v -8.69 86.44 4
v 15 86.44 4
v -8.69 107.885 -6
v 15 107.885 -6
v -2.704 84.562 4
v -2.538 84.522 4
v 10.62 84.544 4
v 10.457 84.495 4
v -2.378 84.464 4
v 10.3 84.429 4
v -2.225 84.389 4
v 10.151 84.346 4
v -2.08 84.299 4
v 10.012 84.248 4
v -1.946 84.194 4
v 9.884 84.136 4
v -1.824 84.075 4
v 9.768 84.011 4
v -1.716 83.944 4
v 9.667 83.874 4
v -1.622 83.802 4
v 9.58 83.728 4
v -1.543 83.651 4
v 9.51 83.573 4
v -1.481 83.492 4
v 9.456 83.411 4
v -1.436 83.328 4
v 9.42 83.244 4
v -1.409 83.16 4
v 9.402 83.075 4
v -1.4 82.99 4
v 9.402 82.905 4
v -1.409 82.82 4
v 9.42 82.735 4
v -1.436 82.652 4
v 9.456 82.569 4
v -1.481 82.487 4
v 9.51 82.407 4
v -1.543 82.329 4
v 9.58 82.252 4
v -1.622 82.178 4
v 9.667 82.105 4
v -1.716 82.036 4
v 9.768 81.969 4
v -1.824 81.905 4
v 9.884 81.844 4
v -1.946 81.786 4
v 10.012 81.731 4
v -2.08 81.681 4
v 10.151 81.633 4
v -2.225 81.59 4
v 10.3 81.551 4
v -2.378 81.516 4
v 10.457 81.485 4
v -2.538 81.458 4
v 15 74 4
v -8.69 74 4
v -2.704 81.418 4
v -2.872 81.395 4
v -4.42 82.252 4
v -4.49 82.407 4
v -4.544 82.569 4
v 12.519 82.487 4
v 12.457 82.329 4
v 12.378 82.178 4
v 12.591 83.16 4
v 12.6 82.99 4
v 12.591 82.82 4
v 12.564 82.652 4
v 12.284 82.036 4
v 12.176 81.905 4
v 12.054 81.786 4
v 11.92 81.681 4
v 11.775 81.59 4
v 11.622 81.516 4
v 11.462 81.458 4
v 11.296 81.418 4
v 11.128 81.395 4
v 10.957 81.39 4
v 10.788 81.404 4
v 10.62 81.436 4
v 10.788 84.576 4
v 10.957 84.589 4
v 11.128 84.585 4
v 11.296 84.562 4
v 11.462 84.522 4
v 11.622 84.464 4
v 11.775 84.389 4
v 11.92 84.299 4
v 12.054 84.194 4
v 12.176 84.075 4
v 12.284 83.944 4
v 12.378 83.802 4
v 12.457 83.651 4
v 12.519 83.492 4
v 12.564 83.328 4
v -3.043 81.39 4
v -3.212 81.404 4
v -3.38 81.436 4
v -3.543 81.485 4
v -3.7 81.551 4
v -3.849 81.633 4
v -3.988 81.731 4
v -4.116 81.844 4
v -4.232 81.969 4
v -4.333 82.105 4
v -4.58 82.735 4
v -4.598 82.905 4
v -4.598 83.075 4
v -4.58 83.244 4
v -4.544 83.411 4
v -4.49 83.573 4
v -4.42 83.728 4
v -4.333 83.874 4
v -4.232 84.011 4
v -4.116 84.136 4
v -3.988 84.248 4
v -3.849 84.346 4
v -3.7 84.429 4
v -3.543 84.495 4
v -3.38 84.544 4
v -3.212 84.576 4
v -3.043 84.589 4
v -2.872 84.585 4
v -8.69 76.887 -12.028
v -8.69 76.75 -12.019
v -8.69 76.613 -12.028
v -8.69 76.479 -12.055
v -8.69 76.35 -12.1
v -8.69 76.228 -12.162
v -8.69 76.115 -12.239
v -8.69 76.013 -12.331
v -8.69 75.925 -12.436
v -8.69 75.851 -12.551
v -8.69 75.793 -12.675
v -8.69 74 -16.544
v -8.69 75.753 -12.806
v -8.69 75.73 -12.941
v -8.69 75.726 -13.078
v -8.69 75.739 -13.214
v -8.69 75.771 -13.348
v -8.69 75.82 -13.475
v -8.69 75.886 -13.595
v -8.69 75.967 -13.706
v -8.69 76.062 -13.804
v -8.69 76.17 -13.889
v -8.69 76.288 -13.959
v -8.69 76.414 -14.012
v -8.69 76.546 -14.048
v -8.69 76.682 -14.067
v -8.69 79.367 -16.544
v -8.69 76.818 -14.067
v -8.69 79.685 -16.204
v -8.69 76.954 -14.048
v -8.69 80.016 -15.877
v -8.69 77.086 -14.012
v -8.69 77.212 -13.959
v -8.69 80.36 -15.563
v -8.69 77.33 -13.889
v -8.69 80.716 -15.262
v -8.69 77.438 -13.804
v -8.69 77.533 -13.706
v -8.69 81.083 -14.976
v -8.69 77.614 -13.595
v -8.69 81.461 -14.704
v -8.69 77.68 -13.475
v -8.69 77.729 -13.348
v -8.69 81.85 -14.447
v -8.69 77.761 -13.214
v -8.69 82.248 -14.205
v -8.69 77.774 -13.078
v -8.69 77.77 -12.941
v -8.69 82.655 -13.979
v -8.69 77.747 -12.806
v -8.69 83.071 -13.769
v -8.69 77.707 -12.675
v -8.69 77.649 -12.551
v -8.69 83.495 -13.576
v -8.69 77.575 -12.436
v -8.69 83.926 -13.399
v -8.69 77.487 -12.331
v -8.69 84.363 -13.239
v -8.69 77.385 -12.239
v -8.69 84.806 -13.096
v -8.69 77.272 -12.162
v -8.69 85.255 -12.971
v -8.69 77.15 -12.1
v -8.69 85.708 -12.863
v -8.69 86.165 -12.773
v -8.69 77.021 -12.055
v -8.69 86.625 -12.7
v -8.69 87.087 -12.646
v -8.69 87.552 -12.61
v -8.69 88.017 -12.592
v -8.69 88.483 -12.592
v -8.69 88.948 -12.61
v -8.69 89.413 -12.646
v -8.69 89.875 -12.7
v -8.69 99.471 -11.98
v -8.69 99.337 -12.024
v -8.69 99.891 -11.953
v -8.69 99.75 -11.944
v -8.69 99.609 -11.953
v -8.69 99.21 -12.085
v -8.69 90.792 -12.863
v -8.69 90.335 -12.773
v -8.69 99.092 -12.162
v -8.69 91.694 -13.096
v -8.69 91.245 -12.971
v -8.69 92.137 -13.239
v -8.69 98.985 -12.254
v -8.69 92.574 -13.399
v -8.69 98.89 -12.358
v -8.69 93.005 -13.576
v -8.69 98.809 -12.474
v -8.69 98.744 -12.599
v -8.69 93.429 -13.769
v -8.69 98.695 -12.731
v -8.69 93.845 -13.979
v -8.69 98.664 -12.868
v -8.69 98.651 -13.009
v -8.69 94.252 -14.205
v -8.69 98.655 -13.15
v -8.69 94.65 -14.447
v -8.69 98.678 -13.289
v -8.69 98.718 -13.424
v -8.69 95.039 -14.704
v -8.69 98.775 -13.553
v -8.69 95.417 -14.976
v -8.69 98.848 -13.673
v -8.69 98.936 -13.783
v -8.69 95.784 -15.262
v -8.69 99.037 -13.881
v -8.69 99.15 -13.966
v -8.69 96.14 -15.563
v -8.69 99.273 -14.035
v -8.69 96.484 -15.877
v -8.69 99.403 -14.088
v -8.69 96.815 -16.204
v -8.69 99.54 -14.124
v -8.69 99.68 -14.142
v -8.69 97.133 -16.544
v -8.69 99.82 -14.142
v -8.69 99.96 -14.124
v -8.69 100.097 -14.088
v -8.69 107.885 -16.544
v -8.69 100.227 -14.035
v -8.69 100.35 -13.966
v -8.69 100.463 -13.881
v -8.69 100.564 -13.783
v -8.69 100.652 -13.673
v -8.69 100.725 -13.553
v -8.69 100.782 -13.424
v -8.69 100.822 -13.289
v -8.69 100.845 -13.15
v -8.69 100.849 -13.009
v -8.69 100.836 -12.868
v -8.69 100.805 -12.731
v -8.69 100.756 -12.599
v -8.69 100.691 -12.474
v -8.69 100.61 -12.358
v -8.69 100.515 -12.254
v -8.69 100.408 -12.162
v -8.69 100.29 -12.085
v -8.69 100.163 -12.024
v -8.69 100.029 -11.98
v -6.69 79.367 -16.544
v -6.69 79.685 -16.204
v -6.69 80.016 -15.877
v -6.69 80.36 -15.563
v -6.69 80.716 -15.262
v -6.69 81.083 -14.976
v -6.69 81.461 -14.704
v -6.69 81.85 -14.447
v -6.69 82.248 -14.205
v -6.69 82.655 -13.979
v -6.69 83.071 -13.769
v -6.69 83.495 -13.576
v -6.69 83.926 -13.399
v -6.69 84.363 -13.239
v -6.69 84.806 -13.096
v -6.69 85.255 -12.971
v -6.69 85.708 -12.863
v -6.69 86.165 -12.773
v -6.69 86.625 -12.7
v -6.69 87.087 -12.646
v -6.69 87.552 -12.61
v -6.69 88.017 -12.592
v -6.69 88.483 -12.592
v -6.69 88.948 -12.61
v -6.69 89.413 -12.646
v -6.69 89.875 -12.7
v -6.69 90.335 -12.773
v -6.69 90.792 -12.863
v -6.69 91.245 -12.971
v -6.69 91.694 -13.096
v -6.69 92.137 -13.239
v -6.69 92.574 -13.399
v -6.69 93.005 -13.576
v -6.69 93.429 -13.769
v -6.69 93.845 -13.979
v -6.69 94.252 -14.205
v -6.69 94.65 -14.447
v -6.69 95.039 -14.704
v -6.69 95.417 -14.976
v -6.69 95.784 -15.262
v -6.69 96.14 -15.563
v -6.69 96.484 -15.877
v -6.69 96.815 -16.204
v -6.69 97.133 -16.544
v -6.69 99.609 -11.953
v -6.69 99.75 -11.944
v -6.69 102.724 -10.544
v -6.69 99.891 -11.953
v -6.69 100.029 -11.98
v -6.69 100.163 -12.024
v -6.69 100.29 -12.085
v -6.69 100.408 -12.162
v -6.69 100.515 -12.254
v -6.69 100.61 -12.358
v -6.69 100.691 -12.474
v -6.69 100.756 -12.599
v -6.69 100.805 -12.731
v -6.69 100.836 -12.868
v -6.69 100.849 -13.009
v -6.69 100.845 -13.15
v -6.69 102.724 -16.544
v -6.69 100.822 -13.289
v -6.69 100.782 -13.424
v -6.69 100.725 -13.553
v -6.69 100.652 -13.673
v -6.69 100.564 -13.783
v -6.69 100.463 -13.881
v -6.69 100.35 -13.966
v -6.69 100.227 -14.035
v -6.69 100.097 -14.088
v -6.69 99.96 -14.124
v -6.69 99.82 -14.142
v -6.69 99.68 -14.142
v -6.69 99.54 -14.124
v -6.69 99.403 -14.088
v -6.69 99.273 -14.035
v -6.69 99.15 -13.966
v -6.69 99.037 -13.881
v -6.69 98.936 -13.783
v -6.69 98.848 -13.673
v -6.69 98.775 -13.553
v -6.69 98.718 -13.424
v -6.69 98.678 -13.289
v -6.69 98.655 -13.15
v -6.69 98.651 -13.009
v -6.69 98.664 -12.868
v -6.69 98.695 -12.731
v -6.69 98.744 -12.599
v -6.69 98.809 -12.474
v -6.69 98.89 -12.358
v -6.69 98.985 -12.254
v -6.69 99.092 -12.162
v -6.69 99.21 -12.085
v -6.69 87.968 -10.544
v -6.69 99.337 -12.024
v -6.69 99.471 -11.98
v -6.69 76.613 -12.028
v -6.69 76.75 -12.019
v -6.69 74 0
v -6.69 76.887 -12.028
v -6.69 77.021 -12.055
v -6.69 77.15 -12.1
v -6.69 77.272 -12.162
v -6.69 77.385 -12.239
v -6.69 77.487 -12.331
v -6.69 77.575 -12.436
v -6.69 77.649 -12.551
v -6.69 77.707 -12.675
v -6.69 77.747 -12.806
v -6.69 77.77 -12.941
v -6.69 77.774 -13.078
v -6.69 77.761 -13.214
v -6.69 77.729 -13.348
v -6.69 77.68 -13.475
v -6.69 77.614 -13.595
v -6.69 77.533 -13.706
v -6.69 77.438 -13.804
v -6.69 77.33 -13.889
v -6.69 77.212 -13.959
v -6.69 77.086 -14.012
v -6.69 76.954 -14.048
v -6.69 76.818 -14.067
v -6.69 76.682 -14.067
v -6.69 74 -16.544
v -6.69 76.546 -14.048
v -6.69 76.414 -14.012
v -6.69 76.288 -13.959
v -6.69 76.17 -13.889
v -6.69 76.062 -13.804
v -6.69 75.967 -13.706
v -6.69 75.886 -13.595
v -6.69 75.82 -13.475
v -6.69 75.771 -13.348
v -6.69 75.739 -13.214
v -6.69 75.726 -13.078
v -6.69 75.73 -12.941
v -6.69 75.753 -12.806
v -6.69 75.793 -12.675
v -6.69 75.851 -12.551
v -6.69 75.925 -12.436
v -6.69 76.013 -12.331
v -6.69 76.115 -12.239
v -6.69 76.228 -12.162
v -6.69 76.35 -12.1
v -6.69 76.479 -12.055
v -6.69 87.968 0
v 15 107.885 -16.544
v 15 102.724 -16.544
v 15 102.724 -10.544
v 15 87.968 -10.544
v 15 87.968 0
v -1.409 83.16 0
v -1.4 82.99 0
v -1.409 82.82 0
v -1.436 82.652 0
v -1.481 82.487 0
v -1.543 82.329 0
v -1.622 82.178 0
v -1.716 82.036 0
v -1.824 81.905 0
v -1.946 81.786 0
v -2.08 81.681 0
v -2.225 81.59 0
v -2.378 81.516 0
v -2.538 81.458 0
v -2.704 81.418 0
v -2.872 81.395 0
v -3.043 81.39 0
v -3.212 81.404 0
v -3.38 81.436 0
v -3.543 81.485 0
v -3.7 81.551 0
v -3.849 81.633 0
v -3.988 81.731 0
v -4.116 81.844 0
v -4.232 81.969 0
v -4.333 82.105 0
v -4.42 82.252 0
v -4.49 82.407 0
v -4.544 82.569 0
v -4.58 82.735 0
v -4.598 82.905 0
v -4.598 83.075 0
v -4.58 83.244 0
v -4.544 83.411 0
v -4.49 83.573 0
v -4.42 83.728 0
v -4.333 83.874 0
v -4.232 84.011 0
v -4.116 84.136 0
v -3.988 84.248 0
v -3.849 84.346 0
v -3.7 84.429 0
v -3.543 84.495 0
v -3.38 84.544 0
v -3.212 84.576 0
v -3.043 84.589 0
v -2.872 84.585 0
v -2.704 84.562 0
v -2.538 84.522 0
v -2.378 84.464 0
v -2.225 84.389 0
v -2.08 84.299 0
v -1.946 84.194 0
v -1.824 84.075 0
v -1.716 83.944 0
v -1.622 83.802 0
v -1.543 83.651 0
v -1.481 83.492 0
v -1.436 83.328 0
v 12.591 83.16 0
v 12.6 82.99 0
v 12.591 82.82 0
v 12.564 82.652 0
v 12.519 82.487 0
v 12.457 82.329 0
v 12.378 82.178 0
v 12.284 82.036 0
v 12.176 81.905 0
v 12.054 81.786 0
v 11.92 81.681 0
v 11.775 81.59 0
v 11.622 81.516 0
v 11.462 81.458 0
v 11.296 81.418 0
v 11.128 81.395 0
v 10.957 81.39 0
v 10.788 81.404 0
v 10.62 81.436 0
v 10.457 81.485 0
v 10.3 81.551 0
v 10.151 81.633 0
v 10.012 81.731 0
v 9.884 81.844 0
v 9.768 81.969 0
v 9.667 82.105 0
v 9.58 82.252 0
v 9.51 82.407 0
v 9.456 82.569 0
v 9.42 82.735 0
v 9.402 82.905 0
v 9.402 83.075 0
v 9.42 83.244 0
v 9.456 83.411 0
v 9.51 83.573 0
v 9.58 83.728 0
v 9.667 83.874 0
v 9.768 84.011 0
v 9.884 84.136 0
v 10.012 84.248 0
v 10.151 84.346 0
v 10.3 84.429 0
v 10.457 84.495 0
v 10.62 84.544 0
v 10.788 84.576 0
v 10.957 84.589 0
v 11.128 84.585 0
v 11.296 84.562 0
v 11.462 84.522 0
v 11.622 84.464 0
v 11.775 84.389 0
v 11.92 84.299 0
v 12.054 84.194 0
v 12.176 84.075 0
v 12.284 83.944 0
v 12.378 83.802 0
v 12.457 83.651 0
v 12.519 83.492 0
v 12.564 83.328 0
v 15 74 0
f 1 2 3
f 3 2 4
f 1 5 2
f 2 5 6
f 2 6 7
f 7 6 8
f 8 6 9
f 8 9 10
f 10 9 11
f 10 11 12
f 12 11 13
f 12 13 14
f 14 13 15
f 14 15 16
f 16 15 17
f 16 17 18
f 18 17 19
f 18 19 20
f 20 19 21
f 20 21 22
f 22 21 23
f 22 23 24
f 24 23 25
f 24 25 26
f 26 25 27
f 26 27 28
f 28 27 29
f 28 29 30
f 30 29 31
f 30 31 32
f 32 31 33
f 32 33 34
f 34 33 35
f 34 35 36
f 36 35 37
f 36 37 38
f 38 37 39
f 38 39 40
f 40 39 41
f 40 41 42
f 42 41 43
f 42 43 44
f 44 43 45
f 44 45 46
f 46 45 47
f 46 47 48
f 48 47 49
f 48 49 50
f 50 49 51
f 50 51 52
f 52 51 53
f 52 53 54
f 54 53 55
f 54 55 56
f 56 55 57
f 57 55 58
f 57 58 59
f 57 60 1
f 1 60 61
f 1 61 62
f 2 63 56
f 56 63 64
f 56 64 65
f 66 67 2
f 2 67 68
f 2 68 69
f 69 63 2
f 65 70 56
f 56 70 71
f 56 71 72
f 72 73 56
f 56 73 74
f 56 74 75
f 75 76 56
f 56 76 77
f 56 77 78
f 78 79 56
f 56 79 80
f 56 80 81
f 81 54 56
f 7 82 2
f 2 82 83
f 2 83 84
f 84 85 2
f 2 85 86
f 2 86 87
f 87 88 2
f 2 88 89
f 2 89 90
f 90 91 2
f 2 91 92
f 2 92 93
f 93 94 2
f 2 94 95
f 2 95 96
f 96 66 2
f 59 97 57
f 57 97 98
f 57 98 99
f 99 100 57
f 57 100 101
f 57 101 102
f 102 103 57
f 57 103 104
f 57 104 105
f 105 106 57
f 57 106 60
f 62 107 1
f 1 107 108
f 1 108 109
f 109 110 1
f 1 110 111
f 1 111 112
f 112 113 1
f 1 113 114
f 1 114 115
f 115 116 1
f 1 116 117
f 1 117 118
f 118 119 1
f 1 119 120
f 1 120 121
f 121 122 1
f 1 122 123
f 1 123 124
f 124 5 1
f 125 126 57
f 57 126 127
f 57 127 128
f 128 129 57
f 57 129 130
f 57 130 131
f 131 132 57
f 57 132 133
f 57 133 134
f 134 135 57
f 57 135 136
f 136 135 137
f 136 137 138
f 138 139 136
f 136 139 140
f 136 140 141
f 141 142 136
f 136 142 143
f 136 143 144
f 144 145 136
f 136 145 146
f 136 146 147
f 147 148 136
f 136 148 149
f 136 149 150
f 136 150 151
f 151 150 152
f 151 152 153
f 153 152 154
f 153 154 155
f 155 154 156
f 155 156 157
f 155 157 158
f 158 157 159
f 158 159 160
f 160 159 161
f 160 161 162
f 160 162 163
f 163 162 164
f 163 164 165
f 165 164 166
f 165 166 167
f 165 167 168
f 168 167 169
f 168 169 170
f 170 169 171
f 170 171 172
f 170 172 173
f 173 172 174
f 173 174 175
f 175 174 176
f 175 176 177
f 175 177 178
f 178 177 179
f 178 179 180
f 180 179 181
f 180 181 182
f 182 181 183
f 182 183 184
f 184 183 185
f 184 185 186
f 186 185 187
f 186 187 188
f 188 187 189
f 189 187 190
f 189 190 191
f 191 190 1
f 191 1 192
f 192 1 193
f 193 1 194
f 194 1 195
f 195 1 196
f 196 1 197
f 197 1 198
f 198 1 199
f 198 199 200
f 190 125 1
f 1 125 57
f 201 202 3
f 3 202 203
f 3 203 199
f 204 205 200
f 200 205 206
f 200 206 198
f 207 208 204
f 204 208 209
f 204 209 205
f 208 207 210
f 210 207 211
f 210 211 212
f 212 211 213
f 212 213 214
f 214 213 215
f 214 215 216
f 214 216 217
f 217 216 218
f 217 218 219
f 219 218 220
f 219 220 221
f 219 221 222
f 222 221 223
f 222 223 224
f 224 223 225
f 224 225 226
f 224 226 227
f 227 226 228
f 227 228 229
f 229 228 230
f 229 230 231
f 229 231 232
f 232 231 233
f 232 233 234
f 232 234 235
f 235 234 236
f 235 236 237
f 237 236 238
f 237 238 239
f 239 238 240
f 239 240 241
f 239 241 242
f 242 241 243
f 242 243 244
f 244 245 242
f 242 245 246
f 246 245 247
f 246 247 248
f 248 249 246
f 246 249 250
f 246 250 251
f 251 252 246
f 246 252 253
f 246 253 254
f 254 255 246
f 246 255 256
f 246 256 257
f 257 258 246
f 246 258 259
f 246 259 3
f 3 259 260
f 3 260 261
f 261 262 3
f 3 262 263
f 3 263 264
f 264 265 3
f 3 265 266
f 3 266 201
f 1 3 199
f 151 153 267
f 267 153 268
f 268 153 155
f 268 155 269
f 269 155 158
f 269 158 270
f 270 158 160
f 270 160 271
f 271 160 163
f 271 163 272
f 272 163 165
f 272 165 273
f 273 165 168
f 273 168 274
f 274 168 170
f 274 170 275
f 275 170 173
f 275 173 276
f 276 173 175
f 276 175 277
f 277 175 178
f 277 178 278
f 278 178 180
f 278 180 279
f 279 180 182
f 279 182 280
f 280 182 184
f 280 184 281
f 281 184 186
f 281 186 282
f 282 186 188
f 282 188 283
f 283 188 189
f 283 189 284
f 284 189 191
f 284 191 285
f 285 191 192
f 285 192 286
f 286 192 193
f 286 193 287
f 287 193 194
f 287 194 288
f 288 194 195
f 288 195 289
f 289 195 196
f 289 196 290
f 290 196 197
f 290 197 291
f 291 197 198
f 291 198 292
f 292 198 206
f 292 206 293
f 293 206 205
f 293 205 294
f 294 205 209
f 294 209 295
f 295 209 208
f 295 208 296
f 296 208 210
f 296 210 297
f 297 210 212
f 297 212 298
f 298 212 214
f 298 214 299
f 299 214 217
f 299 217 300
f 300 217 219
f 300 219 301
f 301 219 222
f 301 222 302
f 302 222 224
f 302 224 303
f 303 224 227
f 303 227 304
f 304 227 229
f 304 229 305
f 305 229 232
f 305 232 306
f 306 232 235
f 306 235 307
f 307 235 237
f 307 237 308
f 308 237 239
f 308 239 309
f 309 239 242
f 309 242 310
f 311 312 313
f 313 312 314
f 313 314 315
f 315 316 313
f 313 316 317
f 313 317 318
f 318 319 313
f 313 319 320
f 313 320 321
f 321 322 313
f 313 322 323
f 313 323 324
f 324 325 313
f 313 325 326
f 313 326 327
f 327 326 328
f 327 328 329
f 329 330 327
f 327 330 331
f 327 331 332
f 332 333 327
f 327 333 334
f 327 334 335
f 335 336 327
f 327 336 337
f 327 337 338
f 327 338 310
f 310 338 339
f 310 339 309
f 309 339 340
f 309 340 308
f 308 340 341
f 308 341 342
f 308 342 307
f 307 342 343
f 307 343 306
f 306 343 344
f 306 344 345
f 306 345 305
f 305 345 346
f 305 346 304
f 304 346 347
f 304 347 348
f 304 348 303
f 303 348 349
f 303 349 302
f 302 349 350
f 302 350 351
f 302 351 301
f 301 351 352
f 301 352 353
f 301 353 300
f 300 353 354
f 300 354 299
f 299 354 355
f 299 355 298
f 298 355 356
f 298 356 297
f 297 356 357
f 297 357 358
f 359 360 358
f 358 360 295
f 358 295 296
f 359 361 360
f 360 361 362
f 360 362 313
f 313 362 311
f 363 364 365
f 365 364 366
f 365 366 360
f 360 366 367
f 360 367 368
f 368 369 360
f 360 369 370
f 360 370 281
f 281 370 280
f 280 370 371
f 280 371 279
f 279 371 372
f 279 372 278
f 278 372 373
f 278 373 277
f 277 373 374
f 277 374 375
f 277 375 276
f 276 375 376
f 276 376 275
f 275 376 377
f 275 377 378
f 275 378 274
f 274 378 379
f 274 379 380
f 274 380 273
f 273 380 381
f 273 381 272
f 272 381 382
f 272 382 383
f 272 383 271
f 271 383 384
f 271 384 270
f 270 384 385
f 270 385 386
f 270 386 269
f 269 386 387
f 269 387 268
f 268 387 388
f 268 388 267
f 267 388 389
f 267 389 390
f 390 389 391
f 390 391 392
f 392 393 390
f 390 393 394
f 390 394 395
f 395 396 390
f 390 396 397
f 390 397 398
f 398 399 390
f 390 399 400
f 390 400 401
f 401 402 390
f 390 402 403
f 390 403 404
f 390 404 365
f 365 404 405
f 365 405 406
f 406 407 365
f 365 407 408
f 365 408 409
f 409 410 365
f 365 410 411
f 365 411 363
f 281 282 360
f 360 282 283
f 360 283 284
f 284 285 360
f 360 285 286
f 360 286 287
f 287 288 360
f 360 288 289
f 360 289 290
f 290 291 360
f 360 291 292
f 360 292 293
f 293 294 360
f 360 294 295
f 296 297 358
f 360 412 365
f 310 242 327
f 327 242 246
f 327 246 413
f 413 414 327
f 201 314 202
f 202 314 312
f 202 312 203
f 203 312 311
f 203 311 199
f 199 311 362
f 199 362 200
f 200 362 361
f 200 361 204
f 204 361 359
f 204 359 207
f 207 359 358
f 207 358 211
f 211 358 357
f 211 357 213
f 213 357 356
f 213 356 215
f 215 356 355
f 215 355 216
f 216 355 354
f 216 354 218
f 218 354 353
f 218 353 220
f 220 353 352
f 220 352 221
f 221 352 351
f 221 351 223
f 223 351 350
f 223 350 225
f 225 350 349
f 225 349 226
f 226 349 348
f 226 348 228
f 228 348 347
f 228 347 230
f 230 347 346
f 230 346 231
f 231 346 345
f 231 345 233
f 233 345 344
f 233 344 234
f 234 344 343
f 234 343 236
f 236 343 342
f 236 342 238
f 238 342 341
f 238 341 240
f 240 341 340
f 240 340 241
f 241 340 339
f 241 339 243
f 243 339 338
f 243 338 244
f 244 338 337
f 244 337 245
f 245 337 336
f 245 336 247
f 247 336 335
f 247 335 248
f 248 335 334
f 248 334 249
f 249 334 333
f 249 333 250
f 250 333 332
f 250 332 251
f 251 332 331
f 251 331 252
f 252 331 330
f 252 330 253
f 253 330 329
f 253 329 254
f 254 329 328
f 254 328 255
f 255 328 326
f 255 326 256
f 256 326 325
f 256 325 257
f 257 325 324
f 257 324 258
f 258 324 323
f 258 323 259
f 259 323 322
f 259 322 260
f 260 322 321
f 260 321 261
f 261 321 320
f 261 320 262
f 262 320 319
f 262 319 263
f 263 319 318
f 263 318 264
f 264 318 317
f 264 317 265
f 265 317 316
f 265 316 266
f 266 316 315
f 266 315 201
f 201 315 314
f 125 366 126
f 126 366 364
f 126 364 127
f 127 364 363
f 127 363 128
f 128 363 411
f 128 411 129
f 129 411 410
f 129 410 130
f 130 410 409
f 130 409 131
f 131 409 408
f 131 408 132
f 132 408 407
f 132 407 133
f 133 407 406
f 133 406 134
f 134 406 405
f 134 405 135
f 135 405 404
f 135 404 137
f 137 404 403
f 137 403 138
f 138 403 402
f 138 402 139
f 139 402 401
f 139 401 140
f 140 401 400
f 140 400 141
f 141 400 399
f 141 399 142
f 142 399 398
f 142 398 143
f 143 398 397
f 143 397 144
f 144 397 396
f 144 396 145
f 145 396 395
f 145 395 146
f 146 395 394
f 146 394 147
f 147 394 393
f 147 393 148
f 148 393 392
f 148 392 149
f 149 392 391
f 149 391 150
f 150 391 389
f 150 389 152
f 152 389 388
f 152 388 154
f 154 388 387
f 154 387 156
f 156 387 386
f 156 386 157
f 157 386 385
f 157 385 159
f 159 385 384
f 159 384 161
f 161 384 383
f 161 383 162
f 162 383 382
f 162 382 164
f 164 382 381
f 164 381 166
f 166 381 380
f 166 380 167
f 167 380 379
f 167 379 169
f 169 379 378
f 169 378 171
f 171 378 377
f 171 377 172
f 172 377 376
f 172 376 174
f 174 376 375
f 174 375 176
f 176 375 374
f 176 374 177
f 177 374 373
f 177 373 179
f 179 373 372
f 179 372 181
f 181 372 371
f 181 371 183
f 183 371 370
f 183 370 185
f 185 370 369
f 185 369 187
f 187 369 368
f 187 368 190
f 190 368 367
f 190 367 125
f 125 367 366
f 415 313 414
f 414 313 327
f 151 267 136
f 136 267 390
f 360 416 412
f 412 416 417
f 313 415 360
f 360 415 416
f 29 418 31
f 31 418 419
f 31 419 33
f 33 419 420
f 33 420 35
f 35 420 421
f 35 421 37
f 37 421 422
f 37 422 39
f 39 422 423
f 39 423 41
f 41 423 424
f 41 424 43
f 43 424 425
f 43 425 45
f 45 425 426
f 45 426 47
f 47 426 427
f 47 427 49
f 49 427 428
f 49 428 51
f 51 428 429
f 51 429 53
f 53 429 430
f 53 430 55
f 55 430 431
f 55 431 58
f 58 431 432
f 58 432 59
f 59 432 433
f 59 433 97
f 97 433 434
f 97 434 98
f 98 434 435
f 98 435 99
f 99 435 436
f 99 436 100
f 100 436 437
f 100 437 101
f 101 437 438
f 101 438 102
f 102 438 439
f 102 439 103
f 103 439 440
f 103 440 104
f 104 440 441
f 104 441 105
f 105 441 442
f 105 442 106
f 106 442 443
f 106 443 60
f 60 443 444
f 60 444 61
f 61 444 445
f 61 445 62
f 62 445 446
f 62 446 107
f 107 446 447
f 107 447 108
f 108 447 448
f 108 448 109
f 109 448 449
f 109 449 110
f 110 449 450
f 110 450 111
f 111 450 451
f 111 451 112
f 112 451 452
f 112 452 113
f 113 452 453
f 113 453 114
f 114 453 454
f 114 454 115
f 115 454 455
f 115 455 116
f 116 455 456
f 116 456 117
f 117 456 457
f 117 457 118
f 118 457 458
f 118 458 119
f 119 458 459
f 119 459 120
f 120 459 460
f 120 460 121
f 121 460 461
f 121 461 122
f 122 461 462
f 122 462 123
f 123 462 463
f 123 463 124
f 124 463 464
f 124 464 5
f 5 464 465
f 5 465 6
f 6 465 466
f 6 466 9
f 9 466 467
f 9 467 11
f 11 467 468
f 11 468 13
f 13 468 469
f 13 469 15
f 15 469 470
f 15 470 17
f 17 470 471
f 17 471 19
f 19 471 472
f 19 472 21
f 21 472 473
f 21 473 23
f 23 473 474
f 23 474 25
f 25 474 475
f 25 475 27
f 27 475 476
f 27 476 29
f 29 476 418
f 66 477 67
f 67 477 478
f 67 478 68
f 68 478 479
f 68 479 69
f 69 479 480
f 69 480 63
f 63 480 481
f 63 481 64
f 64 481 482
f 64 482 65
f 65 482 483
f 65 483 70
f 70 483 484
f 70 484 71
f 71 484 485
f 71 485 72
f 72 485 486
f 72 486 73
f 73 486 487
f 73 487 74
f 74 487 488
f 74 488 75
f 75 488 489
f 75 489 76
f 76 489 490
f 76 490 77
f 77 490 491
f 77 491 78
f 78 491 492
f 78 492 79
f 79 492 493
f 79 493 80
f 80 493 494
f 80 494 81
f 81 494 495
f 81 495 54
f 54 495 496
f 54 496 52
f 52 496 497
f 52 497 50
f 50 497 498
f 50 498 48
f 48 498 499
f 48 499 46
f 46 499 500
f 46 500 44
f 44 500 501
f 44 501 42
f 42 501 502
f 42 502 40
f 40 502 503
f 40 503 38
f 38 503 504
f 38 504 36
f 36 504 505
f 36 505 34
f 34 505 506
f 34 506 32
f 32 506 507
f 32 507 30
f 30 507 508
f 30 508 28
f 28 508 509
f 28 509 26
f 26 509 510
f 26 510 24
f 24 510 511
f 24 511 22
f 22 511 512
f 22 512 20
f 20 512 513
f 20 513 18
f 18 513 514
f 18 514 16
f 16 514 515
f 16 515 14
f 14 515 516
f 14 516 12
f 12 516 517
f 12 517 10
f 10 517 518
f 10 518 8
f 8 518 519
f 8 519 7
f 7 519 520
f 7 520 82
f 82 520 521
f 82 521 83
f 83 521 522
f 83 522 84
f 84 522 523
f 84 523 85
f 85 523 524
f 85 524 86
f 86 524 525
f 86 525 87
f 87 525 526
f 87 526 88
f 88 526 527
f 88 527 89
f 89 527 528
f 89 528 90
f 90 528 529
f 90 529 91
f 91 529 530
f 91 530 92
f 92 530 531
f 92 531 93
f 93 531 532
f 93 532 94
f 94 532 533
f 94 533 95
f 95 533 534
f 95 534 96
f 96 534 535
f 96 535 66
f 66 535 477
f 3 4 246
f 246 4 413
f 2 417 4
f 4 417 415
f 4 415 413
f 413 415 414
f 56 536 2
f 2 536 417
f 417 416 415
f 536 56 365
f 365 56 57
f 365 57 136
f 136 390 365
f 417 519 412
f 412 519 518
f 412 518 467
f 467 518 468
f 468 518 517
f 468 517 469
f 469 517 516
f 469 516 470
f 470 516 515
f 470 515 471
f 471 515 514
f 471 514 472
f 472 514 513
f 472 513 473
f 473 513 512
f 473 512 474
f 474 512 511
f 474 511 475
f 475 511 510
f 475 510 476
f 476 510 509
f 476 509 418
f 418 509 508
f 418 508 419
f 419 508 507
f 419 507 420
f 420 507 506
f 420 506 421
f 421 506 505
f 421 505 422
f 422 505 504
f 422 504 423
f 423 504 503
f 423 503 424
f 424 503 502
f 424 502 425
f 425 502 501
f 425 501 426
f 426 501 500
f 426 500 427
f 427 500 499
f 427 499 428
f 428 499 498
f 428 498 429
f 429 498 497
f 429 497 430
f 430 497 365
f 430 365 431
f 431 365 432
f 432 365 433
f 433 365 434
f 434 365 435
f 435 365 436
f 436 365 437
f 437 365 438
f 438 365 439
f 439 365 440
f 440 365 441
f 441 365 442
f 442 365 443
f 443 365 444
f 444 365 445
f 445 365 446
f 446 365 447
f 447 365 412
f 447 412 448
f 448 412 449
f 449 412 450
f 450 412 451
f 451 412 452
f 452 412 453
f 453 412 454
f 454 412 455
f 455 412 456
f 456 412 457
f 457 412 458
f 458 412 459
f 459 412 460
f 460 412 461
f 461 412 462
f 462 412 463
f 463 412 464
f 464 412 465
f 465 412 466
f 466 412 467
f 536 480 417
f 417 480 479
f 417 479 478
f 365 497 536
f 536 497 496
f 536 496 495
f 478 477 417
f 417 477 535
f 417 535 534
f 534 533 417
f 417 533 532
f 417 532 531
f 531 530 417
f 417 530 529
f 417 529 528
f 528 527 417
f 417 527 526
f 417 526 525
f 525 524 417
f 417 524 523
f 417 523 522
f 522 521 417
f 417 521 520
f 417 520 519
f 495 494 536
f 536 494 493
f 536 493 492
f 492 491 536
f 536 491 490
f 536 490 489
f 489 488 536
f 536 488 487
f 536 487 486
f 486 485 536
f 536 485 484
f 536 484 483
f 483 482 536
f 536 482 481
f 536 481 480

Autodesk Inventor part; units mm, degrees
ref_plane "YZ Plane" through (0, 0, 0) normal (1, 0, 0) x (0, 1, 0)
ref_plane "XZ Plane" through (0, 0, 0) normal (0, 1, 0) x (-1, 0, 0)
ref_plane "Work Plane1" through (0, 0, 0) normal (0, 0, 1) x (1, 0, 0)
sketch "Sketch1" plane through (0, 0, 0) normal (0, 0, 1) x (1, 0, 0)
  circle A0 centre (11, 82.9899) radius 1.6 projected
  circle A1 centre (-3, 82.9899) radius 1.6 projected
  circle A2 centre (7.5, 24) radius 6.4506 projected
  circle A3 centre (7.5, 64) radius 6.4305 projected
  arc A4 (0, 42.6389) -> (0, 45.3611) centre (-0.5, 44) ccw projected
  line L0 (0, -32) -> (0, 42.6389) projected
  line L1 (0, -32) -> (15, -32) projected
  line L2 (15, 35.9533) -> (15, -32) projected
  arc A5 (15, 35.9533) -> (15, 52.0467) centre (7.5, 44) ccw projected
  line L3 (15, 52.0467) -> (15, 86) projected
  line L4 (0, 45.3611) -> (0, 74) projected
  circle A6 centre (7.5, 36) radius 1.45 projected
  circle A7 centre (7.5, 52) radius 1.45 projected
  circle A8 centre (15.5, 44) radius 1.45 projected
  circle A9 centre (7.5, 44) radius 6 projected
  line L5 (-6.6903, 74) -> (15, 74)
  line L6 (15, 74) -> (15, 107.8848)
  line L7 (15, 107.8848) -> (-6.6903, 107.8848)
  line L8 (-6.6903, 107.8848) -> (-6.6903, 74)
  line L9 (15, 86) -> (-7, 86) projected
  line L10 (-7, 86) -> (-7, 74) projected
  line L11 (-7, 74) -> (0, 74) projected
  point P0 (0, 0)
extrude "Extrusion1" add sketch "Sketch1" along normal blind 4 contours L5 L8 L9 L3 | L8 L7 L6 L9
sketch "Sketch2" plane through (0, 0, 0) normal (0, 0, -1) x (-1, 0, 0)
  circle A0 centre (3, 82.9899) radius 1.6 projected
  circle A1 centre (-11, 82.9899) radius 1.6 projected
  line L0 (6.6903, 74) -> (6.6903, 107.8848) projected
  line L1 (6.6903, 107.8848) -> (-15, 107.8848) projected
  line L2 (-15, 107.8848) -> (-15, 74) projected
  line L3 (-15, 74) -> (6.6903, 74) projected
  line L4 (-15, 74) -> (-15, 107.8848) projected
  line L5 (-15, 107.8848) -> (6.6903, 107.8848)
  line L6 (6.6903, 107.8848) -> (6.6903, 87.9676)
  line L7 (6.6903, 87.9676) -> (-15, 87.9676)
  line L8 (-15, 87.9676) -> (-15, 107.8848)
  point P0 (0, 0)
ref_plane "Work Plane2" through (-7, 76.75, -10.5439) normal (0, 0, 1) x (1, 0, 0)
extrude "Extrusion2" add sketch "Sketch2" along normal up to surface (10.5439 mm away) contours L7 L2 L1 L0
sketch "Sketch3" plane through (15, 87.9676, -10.5439) normal (0, 0, -1) x (-1, 0, 0)
  line L0 (0, 19.9172) -> (0, 0) projected
  line L1 (0, 0) -> (21.6903, 0) projected
  line L2 (21.6903, 0) -> (21.6903, 19.9172) projected
  line L3 (21.6903, 19.9172) -> (0, 19.9172) projected
  line L4 (0, 19.9172) -> (21.6903, 19.9172) projected
  line L5 (0, -13.9676) -> (0, 19.9172) projected
  line L6 (21.6903, 19.9172) -> (0, 19.9172)
  line L7 (0, 19.9172) -> (0, 14.7562)
  line L8 (0, 14.7562) -> (21.6903, 14.7562)
  line L9 (21.6903, 14.7562) -> (21.6903, 19.9172)
  line L10 (21.6903, 0) -> (21.6903, 19.9172) projected
  line L11 (0, 19.9172) -> (0, 0) projected
  line L12 (21.6903, 19.9172) -> (0, 19.9172)
  line L13 (0, 19.9172) -> (0, 14.63)
  line L14 (0, 14.63) -> (21.6903, 14.63)
  line L15 (21.6903, 14.63) -> (21.6903, 19.9172)
  line L16 (22, 14.2824) -> (14.4, 14.2824) projected
  point P0 (15, -87.9676)
extrude "Extrusion3" add sketch "Sketch3" along normal blind 6 contours L3 L2 L8 L0
sketch "Sketch4" plane through (-6.6903, 74, 4) normal (-1, 0, 0) x (0, 0, 1)
  circle A0 centre (-28.5439, 14.25) radius 10.8 projected
  line L0 (-20.5439, 33.8848) -> (-20.5439, 28.7239) projected
  line L1 (0, 0) -> (-20.5439, 0)
  line L2 (-20.5439, 0) -> (-20.5439, 33.8848)
  line L3 (-20.5439, 33.8848) -> (0, 33.8848)
  line L4 (0, 33.8848) -> (0, 0)
  circle A1 centre (-17.0439, 25.75) radius 1.1 projected
  line L5 (-14.5439, 25.75) -> (-14.5439, 2.75) projected
  arc A2 (-14.5439, 25.75) -> (-17.0439, 28.25) centre (-17.0439, 25.75) ccw projected
  line L6 (-40.0439, 28.25) -> (-17.0439, 28.25) projected
  arc A3 (-40.0439, 28.25) -> (-42.5439, 25.75) centre (-40.0439, 25.75) ccw projected
  line L7 (-42.5439, 2.75) -> (-42.5439, 25.75) projected
  arc A4 (-42.5439, 2.75) -> (-40.0439, 0.25) centre (-40.0439, 2.75) ccw projected
  line L8 (-17.0439, 0.25) -> (-40.0439, 0.25) projected
  arc A5 (-17.0439, 0.25) -> (-14.5439, 2.75) centre (-17.0439, 2.75) ccw projected
  circle A6 centre (-28.5439, 14.25) radius 11 projected
  circle A7 centre (-40.0439, 25.75) radius 1.025 projected
  circle A8 centre (-17.0439, 25.75) radius 1.025 projected
  circle A9 centre (-17.0439, 2.75) radius 1.025 projected
  circle A10 centre (-40.0439, 2.75) radius 1.025 projected
  line L9 (0, 33.8848) -> (0, 0) projected
  point P0 (-4, -74)
extrude "Extrusion4" add sketch "Sketch4" along normal blind 2 contours A0 L2 | A0 L2 A6 | L2 L6 A2 L5 A5 L8 A6 | L2 L0 L3 L4 L1 L8 A5 L5 A2 L6 picked at (-19.7185, 15.1251) picked at (-18.4698, 18.1768)
sketch "Sketch5" plane through (-8.6903, 74, 4) normal (-1, 0, 0) x (0, 0, 1)
  circle A0 centre (-28.5439, 14.25) radius 11 projected
  circle A1 centre (-28.5439, 14.25) radius 11.9547
  point P0 (-4, -74)
extrude "Extrusion5" cut sketch "Sketch5" against normal blind 2 contours A0 | A1
chamfer "Chamfer1" distance 10 angle 65 1 edges at (3.1548, 107.8848, 4) measured on face at (7.1032, 107.8848, -2.848)
properties part number "OPENTRONS_Autofocus_NEMA_holder_tmp"
